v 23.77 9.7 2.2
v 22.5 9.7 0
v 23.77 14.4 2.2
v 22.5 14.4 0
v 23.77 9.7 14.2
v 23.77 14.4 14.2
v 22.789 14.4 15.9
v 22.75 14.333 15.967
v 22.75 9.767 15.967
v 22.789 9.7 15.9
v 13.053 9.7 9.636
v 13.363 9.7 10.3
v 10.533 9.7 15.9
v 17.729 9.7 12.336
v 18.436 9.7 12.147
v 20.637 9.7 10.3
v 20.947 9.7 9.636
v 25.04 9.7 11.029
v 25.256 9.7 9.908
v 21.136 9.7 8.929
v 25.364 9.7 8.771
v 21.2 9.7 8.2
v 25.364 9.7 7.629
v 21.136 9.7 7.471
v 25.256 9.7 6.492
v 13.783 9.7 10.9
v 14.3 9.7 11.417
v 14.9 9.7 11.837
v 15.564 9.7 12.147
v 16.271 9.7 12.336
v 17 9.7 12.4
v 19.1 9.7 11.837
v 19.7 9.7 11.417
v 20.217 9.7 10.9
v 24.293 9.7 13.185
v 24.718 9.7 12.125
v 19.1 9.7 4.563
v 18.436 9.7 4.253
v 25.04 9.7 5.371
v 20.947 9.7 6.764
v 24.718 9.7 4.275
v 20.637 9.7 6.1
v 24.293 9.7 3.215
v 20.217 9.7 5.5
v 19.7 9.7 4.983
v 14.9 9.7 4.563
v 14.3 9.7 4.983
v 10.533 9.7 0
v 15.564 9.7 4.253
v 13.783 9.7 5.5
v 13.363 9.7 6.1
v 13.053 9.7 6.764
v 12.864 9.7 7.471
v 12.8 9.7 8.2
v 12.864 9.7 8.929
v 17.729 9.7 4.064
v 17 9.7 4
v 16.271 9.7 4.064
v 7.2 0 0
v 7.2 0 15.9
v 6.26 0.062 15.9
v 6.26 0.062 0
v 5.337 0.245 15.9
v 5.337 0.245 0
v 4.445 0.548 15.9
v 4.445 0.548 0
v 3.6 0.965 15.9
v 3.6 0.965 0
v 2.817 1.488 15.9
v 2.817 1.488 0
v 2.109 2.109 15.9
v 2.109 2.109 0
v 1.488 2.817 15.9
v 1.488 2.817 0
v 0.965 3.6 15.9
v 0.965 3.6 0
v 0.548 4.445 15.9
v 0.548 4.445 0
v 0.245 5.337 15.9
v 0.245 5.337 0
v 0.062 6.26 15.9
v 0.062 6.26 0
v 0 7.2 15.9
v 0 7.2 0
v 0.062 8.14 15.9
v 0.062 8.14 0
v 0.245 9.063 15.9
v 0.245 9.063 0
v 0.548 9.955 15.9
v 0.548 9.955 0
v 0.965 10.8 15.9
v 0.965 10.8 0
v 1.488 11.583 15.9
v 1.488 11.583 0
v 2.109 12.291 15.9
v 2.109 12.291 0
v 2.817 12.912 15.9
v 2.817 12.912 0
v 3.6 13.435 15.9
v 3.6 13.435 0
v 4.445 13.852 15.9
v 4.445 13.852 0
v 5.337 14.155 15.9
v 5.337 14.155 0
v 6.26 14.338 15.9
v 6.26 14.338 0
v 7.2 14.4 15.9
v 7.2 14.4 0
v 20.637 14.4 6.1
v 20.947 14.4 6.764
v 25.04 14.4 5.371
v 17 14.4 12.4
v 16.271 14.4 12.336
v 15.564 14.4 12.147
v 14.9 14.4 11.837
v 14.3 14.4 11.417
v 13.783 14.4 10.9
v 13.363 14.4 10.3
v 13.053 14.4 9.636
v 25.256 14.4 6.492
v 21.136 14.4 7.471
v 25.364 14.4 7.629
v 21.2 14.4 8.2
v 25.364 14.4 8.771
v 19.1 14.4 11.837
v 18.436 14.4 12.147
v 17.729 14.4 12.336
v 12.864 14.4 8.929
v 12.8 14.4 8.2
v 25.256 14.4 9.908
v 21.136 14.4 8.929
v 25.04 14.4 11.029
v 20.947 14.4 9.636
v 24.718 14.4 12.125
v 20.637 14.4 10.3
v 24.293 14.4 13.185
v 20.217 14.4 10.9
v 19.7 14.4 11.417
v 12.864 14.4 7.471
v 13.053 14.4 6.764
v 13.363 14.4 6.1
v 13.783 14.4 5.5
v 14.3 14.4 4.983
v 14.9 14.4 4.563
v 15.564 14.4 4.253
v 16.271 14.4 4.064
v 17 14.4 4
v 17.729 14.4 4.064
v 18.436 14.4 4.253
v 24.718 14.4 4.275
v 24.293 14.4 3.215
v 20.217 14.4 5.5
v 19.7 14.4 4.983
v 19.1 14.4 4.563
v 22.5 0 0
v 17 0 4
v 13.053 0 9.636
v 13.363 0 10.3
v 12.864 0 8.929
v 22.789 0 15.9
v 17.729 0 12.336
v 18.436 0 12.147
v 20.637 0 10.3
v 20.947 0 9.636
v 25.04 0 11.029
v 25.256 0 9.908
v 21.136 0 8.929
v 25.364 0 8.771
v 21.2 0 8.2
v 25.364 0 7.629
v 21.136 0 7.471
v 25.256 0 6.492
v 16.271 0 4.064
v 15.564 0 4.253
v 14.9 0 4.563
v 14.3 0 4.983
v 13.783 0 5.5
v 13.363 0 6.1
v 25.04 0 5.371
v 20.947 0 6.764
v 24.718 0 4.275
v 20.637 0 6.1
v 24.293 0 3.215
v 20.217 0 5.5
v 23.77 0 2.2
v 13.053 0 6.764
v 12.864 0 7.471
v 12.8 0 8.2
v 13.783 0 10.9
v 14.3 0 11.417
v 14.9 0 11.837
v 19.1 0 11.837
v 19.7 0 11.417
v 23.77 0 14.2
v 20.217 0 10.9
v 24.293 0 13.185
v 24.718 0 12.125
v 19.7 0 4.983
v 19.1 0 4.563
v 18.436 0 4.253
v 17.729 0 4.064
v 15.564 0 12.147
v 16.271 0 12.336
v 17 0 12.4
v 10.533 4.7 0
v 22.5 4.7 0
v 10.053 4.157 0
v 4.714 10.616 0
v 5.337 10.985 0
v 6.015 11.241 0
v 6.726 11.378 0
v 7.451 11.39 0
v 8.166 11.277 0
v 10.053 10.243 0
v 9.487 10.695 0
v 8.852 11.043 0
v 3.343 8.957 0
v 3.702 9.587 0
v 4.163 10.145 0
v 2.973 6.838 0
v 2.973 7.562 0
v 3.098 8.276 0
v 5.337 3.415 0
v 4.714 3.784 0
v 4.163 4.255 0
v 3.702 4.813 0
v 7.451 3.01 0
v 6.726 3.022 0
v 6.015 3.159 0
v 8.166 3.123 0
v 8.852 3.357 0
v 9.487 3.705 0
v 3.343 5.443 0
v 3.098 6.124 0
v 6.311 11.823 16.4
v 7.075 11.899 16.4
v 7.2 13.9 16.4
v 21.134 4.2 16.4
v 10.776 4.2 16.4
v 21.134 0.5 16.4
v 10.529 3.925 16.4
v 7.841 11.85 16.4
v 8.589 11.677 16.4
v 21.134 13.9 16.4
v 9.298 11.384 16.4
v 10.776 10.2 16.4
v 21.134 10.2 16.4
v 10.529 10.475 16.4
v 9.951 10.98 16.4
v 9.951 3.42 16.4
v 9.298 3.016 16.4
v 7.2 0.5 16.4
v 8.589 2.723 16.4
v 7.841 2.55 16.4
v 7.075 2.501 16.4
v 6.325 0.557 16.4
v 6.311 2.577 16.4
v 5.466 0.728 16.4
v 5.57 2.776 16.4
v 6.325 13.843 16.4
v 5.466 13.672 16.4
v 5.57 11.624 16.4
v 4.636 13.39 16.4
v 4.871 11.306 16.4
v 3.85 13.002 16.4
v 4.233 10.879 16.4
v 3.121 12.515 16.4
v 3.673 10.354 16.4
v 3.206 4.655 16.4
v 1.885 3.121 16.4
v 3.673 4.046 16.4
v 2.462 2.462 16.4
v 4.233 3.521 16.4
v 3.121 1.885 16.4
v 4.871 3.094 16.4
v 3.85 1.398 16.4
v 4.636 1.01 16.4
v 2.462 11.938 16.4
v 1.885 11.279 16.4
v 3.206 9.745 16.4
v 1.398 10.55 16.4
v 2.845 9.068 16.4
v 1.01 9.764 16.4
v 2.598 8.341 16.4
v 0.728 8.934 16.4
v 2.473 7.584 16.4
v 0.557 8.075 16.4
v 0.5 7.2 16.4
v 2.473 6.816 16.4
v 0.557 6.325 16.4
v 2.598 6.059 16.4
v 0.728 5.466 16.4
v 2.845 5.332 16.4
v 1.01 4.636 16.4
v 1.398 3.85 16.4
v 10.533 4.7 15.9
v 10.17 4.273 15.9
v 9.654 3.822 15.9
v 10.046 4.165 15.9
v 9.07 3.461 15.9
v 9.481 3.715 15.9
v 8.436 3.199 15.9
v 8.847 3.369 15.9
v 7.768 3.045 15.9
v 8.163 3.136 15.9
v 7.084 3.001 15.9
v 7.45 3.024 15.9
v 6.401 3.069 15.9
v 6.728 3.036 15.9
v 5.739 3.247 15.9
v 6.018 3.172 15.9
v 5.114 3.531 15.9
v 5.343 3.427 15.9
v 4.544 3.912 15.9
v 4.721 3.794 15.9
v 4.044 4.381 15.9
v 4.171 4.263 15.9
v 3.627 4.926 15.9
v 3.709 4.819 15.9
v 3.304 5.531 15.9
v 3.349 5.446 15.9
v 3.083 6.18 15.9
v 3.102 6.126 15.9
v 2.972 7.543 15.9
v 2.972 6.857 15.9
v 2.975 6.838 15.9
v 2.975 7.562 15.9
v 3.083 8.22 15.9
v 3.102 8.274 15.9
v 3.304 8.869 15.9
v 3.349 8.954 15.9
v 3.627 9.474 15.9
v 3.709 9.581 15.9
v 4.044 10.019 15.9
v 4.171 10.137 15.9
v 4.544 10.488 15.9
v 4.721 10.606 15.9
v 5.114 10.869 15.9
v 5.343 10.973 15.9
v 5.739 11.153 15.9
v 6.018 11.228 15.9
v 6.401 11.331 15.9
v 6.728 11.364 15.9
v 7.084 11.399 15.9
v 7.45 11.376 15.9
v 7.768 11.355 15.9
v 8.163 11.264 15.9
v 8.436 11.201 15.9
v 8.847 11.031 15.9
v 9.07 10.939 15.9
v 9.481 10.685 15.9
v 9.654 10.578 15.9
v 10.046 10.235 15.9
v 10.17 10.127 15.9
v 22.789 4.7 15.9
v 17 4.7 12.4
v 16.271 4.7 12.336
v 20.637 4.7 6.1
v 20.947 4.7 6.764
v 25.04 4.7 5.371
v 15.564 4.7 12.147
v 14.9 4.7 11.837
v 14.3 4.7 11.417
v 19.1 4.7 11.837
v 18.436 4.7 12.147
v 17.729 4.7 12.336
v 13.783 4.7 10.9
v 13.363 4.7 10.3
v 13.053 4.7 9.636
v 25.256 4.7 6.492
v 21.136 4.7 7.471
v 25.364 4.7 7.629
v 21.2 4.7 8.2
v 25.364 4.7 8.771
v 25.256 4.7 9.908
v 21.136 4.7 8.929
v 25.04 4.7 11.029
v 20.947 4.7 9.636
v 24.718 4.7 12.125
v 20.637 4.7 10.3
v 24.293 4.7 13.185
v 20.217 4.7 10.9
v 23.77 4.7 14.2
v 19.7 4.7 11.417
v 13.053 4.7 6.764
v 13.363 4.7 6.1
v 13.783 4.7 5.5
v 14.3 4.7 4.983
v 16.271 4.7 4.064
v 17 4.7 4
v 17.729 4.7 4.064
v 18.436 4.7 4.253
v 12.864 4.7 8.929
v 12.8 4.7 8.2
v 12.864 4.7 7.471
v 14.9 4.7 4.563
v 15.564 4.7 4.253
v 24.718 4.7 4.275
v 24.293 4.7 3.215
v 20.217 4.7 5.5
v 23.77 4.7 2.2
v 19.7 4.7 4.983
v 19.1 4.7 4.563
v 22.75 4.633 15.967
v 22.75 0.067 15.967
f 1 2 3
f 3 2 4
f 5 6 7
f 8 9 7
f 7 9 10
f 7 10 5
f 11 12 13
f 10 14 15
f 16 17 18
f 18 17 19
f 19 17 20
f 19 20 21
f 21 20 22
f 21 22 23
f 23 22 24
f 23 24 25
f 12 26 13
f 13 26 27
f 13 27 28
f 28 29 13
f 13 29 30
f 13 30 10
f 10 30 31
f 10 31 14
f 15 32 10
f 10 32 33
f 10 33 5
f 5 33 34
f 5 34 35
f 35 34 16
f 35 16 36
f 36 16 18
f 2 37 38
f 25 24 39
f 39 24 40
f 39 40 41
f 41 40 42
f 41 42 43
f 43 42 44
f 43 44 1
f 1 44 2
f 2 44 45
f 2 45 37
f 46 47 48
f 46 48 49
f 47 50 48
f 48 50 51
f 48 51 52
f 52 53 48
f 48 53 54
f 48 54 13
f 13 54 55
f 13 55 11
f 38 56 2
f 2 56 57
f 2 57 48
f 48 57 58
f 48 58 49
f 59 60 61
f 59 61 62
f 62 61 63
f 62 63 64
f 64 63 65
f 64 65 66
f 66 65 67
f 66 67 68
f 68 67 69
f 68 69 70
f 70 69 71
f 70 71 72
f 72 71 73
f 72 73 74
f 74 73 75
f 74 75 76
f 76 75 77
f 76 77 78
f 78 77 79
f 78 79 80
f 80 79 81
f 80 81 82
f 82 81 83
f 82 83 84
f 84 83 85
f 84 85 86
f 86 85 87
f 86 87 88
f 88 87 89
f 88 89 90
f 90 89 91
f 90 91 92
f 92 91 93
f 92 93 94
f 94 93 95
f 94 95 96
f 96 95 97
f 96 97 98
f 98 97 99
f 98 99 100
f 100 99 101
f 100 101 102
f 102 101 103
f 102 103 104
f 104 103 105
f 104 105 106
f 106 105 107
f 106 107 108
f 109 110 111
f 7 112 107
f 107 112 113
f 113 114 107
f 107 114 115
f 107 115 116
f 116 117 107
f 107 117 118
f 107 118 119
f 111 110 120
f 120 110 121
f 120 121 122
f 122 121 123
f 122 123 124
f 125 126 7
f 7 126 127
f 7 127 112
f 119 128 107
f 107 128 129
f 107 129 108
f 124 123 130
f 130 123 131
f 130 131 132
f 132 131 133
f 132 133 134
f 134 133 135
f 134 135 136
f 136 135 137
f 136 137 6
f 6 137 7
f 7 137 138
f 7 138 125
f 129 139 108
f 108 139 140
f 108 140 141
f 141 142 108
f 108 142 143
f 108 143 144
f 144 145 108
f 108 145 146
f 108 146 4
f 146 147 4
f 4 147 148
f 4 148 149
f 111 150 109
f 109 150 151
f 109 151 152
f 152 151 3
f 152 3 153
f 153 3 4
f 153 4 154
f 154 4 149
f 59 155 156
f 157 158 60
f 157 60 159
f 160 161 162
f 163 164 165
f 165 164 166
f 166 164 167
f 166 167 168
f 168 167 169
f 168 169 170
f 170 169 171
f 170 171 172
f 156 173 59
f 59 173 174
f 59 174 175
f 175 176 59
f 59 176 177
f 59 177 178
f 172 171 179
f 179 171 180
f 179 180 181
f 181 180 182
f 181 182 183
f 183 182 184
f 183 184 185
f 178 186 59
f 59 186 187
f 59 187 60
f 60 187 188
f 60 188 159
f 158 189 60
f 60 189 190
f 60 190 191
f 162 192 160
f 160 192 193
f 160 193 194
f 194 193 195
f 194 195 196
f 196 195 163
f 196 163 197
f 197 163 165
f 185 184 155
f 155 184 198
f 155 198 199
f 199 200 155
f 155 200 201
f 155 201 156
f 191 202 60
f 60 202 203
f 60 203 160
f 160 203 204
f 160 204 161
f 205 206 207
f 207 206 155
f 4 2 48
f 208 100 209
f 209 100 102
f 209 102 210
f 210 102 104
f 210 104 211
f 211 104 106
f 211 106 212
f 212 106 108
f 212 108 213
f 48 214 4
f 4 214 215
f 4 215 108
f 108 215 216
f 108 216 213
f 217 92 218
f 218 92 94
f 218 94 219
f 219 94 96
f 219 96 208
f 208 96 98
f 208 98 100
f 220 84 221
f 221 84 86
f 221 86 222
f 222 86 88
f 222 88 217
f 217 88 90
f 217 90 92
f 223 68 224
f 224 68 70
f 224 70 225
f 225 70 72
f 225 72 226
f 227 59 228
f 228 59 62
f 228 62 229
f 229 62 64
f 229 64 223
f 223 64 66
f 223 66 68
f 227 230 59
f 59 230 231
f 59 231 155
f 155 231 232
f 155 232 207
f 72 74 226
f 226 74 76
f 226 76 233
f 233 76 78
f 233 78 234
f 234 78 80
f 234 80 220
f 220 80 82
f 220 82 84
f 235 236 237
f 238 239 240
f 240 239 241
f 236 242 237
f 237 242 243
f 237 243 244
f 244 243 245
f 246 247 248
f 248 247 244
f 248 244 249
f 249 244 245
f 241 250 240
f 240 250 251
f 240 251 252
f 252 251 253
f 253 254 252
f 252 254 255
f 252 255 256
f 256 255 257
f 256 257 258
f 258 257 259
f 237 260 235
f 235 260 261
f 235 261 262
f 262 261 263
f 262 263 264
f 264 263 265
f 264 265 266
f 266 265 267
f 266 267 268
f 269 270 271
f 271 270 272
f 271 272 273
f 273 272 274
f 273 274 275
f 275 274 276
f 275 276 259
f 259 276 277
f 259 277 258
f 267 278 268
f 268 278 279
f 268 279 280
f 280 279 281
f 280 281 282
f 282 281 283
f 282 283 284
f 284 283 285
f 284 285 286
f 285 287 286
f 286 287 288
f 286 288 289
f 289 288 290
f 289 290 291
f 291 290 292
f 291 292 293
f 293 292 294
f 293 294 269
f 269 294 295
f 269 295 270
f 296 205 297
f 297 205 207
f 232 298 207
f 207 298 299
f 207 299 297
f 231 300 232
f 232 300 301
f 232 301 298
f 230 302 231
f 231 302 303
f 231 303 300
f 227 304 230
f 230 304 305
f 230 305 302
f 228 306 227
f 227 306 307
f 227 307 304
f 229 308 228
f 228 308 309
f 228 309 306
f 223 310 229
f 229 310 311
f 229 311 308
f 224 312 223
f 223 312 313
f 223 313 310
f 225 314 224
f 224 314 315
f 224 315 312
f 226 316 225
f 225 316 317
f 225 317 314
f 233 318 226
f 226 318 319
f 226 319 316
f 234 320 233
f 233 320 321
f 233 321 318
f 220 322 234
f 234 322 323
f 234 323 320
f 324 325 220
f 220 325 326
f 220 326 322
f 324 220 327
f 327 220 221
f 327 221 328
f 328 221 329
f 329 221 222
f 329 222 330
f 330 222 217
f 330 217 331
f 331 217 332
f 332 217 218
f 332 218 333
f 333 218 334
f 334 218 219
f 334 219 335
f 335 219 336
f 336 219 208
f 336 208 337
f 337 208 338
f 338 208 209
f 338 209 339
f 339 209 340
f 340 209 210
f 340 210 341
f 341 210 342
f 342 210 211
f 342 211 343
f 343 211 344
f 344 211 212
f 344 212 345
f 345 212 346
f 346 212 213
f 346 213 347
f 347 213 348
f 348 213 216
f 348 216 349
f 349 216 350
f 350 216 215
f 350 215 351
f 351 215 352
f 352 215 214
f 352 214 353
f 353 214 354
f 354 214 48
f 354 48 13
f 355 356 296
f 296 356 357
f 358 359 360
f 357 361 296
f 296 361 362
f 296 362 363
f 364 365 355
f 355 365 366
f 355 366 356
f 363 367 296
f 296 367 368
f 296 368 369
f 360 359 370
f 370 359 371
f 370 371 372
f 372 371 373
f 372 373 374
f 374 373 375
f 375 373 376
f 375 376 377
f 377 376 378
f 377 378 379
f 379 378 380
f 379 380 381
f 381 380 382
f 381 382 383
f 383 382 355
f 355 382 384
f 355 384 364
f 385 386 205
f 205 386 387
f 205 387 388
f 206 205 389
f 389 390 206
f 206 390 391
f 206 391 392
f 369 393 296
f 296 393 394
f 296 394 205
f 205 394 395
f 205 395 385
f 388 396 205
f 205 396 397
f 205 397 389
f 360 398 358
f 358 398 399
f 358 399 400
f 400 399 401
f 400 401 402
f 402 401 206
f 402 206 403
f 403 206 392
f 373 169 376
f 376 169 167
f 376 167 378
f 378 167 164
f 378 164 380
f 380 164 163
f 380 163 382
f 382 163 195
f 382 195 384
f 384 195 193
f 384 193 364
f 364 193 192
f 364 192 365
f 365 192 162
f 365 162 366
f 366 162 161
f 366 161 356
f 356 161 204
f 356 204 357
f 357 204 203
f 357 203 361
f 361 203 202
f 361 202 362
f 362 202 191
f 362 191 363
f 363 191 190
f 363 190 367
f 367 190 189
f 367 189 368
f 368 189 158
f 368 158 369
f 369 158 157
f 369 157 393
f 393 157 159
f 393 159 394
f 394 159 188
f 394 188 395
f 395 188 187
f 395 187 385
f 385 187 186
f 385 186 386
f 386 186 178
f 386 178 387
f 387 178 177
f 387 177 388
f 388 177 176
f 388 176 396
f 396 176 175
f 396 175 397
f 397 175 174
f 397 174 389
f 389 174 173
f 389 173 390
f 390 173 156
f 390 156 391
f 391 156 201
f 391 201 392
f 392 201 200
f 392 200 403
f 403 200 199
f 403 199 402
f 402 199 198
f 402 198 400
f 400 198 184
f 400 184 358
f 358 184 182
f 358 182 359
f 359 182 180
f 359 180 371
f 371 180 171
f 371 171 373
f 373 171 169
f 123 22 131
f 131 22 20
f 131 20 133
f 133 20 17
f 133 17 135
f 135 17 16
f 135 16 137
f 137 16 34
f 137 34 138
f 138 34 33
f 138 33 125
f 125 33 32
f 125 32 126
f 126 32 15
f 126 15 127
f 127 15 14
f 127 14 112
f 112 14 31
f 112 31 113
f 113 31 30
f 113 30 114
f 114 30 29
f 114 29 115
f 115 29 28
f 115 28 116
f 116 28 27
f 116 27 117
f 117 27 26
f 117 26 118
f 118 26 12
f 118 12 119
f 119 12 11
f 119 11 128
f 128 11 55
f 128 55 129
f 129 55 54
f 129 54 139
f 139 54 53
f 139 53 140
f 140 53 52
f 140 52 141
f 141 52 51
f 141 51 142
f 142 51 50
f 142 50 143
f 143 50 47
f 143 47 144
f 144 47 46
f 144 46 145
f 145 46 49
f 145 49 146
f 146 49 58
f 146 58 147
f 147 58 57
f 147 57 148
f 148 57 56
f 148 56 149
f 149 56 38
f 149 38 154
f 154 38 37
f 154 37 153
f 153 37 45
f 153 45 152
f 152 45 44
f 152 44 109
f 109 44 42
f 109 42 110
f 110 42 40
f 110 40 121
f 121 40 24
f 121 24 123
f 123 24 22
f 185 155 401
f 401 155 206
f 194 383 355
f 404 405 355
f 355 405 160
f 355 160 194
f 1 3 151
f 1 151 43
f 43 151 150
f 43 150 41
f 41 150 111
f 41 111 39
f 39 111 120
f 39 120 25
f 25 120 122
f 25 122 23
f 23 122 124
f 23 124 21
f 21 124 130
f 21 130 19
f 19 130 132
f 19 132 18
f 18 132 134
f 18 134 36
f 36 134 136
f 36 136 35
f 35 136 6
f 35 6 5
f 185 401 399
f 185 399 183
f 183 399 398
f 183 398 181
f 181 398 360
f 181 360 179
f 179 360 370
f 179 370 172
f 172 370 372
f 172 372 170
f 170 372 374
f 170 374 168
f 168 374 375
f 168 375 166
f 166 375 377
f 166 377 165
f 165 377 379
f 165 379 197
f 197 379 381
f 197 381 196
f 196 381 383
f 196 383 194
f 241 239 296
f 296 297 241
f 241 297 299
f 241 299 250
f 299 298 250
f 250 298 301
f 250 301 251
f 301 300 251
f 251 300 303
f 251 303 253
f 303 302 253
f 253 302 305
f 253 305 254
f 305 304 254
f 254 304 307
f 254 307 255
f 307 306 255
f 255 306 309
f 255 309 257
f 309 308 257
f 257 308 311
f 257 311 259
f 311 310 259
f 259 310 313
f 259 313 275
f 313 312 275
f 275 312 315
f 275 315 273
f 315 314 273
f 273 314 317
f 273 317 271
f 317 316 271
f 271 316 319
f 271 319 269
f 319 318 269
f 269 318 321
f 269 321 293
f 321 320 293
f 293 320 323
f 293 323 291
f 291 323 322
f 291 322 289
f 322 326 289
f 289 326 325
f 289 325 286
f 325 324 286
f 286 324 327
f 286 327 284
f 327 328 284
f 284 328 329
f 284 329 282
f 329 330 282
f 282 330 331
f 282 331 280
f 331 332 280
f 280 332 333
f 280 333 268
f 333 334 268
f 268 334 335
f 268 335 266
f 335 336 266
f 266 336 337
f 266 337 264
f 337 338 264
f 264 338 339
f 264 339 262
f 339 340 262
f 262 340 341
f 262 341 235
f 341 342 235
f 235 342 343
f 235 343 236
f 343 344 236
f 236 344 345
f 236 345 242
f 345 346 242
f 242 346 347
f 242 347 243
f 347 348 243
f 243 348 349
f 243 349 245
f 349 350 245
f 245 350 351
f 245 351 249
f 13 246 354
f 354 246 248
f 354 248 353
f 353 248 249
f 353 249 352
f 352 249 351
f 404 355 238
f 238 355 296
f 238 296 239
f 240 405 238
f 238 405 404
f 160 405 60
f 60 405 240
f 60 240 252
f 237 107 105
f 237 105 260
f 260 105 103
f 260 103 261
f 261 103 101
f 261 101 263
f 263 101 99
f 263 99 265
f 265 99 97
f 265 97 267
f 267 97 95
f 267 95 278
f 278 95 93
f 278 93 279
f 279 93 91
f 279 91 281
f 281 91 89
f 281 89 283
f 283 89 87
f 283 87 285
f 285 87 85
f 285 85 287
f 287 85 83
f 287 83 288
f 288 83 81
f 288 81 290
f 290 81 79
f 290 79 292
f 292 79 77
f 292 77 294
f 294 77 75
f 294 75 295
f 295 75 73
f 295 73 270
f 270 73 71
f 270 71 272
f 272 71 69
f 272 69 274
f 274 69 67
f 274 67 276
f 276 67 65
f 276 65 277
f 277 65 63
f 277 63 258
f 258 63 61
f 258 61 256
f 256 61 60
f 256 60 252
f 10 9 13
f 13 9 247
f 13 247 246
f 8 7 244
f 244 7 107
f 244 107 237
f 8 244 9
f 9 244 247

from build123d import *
from OCP.BRepFilletAPI import BRepFilletAPI_MakeChamfer

# Parameters (mm, degrees)
BOSS_EXTRUDE1_DEPTH     = 16.399996177
CUT_EXTRUDE1_DEPTH      = 32.345970628
CUT_EXTRUDE3_DEPTH      = 30.483891782
CUT_EXTRUDE3_DEPTH_BACK = 30.483891782
SKETCH4_R               = 4.2
BOSS_EXTRUDE2_START     = -14.4
BOSS_EXTRUDE2_DEPTH     = 14.4
SKETCH6_W               = 16.399996177
SKETCH6_H               = 5
CUT_EXTRUDE4_DEPTH      = 10
FILLET1_R               = 12
CHAMFER1_SIZE           = 0.5
CHAMFER2_SIZE           = 0.5
CHAMFER2_SIZE2          = 1.366025404


with BuildPart() as part:
    # Sketch1 → Boss-Extrude1 (new body)
    with BuildSketch(Plane.XY.offset(16.399996177)):
        with BuildLine():
            Line((7.2, 0), (22.5, 0))
            Line((22.5, 0), (22.5, 14.4))
            Line((22.5, 14.4), (7.2, 14.4))
            ThreePointArc((7.2, 14.4), (0, 7.2), (7.2, 0))
        make_face()
    extrude(amount=-BOSS_EXTRUDE1_DEPTH)

    # Sketch2 → Cut-Extrude1 (cut, through all)
    with BuildSketch(Plane(origin=(0, 0, 0), x_dir=(-1, 0, 0), z_dir=(0, 0, -1))):
        with BuildLine():
            Line((-22.5, 9.7), (-22.5, 4.7))
            Line((-22.5, 4.7), (-10.532688106, 4.7))
            ThreePointArc((-10.532688106, 4.7), (-2.9577807, 7.2), (-10.532688106, 9.7))
            Line((-10.532688106, 9.7), (-22.5, 9.7))
        make_face()
    extrude(amount=-CUT_EXTRUDE1_DEPTH, mode=Mode.SUBTRACT)

    # Sketch4 → Cut-Extrude3 (cut, two sides: drawn at the far end of the back side and taken through both)
    with BuildSketch(Plane.XZ.offset(-9.7).offset(-CUT_EXTRUDE3_DEPTH_BACK)):
        with Locations((17, 8.2)):
            Circle(SKETCH4_R)
    extrude(amount=CUT_EXTRUDE3_DEPTH + CUT_EXTRUDE3_DEPTH_BACK, mode=Mode.SUBTRACT)

    # Sketch5 → Boss-Extrude2 (add)
    with BuildSketch(Plane(origin=(0, 14.4, 0), x_dir=(1, 0, 0), z_dir=(0, 1, 0)).offset(BOSS_EXTRUDE2_START)):
        Polygon((22.5, 0), (22.5, -16.399996177), (27.234271104, -8.199998088), align=None)
    boss_extrude2 = extrude(amount=BOSS_EXTRUDE2_DEPTH)

    # Mirror3: Boss-Extrude2 across plane
    add(boss_extrude2.mirror(Plane(origin=(0, 7.2, 0), x_dir=(0, 0, 1), z_dir=(0, -1, 0))))

    # Sketch6 → Cut-Extrude4 (cut)
    with BuildSketch(Plane.ZY.offset(-22.5)):
        with Locations((8.199998089, 7.2)):
            Rectangle(SKETCH6_W, SKETCH6_H)
    extrude(amount=-CUT_EXTRUDE4_DEPTH, mode=Mode.SUBTRACT)

    # Fillet1
    fillet1_edges = [part.edges().sort_by_distance(p)[0] for p in [
        (27.234271104, 2.35, 8.199998088),
        (27.234271104, 12.05, 8.199998088),
    ]]
    fillet(fillet1_edges, radius=FILLET1_R)

    # Chamfer1
    chamfer1_edges = [part.edges().sort_by_distance(p)[0] for p in [
        (2.9577807, 7.2, 16.399996177),
    ]]
    chamfer(chamfer1_edges, length=CHAMFER1_SIZE)

    # Chamfer2: one chamfer whose edges measure the first distance from different faces: ONE call of the kernel's chamfer builder (chamfer() names one face for all edges)
    chamfer2_edges_1 = [part.edges().sort_by_distance(p)[0] for p in [
        (22.5, 12.05, 16.399996177),
    ]]
    chamfer2_side_1 = [part.faces().sort_by_distance(p)[0] for p in [
        (23.135084744, 12.05, 15.299997133),
    ]]
    chamfer2_edges_2 = [part.edges().sort_by_distance(p)[0] for p in [
        (22.5, 2.35, 16.399996177),
    ]]
    chamfer2_side_2 = [part.faces().sort_by_distance(p)[0] for p in [
        (23.135084744, 2.35, 15.299997133),
    ]]
    chamfer2_edges_3 = [part.edges().sort_by_distance(p)[0] for p in [
        (14.85, 0, 16.399996177),
        (0, 7.2, 16.399996177),
        (14.85, 14.4, 16.399996177),
        (16.818865224, 9.7, 16.399996177),
        (16.818865224, 4.7, 16.399996177),
    ]]
    chamfer2 = BRepFilletAPI_MakeChamfer(part.part.solid().wrapped)
    for e in chamfer2_edges_1:
        chamfer2.Add(CHAMFER2_SIZE, CHAMFER2_SIZE2, e.wrapped, chamfer2_side_1[0].wrapped)  # the first distance lies on this face
    for e in chamfer2_edges_2:
        chamfer2.Add(CHAMFER2_SIZE, CHAMFER2_SIZE2, e.wrapped, chamfer2_side_2[0].wrapped)  # the first distance lies on this face
    for e in chamfer2_edges_3:
        chamfer2.Add(CHAMFER2_SIZE, e.wrapped)
    add(Compound.cast(chamfer2.Shape()), mode=Mode.REPLACE)


solid = part.part
